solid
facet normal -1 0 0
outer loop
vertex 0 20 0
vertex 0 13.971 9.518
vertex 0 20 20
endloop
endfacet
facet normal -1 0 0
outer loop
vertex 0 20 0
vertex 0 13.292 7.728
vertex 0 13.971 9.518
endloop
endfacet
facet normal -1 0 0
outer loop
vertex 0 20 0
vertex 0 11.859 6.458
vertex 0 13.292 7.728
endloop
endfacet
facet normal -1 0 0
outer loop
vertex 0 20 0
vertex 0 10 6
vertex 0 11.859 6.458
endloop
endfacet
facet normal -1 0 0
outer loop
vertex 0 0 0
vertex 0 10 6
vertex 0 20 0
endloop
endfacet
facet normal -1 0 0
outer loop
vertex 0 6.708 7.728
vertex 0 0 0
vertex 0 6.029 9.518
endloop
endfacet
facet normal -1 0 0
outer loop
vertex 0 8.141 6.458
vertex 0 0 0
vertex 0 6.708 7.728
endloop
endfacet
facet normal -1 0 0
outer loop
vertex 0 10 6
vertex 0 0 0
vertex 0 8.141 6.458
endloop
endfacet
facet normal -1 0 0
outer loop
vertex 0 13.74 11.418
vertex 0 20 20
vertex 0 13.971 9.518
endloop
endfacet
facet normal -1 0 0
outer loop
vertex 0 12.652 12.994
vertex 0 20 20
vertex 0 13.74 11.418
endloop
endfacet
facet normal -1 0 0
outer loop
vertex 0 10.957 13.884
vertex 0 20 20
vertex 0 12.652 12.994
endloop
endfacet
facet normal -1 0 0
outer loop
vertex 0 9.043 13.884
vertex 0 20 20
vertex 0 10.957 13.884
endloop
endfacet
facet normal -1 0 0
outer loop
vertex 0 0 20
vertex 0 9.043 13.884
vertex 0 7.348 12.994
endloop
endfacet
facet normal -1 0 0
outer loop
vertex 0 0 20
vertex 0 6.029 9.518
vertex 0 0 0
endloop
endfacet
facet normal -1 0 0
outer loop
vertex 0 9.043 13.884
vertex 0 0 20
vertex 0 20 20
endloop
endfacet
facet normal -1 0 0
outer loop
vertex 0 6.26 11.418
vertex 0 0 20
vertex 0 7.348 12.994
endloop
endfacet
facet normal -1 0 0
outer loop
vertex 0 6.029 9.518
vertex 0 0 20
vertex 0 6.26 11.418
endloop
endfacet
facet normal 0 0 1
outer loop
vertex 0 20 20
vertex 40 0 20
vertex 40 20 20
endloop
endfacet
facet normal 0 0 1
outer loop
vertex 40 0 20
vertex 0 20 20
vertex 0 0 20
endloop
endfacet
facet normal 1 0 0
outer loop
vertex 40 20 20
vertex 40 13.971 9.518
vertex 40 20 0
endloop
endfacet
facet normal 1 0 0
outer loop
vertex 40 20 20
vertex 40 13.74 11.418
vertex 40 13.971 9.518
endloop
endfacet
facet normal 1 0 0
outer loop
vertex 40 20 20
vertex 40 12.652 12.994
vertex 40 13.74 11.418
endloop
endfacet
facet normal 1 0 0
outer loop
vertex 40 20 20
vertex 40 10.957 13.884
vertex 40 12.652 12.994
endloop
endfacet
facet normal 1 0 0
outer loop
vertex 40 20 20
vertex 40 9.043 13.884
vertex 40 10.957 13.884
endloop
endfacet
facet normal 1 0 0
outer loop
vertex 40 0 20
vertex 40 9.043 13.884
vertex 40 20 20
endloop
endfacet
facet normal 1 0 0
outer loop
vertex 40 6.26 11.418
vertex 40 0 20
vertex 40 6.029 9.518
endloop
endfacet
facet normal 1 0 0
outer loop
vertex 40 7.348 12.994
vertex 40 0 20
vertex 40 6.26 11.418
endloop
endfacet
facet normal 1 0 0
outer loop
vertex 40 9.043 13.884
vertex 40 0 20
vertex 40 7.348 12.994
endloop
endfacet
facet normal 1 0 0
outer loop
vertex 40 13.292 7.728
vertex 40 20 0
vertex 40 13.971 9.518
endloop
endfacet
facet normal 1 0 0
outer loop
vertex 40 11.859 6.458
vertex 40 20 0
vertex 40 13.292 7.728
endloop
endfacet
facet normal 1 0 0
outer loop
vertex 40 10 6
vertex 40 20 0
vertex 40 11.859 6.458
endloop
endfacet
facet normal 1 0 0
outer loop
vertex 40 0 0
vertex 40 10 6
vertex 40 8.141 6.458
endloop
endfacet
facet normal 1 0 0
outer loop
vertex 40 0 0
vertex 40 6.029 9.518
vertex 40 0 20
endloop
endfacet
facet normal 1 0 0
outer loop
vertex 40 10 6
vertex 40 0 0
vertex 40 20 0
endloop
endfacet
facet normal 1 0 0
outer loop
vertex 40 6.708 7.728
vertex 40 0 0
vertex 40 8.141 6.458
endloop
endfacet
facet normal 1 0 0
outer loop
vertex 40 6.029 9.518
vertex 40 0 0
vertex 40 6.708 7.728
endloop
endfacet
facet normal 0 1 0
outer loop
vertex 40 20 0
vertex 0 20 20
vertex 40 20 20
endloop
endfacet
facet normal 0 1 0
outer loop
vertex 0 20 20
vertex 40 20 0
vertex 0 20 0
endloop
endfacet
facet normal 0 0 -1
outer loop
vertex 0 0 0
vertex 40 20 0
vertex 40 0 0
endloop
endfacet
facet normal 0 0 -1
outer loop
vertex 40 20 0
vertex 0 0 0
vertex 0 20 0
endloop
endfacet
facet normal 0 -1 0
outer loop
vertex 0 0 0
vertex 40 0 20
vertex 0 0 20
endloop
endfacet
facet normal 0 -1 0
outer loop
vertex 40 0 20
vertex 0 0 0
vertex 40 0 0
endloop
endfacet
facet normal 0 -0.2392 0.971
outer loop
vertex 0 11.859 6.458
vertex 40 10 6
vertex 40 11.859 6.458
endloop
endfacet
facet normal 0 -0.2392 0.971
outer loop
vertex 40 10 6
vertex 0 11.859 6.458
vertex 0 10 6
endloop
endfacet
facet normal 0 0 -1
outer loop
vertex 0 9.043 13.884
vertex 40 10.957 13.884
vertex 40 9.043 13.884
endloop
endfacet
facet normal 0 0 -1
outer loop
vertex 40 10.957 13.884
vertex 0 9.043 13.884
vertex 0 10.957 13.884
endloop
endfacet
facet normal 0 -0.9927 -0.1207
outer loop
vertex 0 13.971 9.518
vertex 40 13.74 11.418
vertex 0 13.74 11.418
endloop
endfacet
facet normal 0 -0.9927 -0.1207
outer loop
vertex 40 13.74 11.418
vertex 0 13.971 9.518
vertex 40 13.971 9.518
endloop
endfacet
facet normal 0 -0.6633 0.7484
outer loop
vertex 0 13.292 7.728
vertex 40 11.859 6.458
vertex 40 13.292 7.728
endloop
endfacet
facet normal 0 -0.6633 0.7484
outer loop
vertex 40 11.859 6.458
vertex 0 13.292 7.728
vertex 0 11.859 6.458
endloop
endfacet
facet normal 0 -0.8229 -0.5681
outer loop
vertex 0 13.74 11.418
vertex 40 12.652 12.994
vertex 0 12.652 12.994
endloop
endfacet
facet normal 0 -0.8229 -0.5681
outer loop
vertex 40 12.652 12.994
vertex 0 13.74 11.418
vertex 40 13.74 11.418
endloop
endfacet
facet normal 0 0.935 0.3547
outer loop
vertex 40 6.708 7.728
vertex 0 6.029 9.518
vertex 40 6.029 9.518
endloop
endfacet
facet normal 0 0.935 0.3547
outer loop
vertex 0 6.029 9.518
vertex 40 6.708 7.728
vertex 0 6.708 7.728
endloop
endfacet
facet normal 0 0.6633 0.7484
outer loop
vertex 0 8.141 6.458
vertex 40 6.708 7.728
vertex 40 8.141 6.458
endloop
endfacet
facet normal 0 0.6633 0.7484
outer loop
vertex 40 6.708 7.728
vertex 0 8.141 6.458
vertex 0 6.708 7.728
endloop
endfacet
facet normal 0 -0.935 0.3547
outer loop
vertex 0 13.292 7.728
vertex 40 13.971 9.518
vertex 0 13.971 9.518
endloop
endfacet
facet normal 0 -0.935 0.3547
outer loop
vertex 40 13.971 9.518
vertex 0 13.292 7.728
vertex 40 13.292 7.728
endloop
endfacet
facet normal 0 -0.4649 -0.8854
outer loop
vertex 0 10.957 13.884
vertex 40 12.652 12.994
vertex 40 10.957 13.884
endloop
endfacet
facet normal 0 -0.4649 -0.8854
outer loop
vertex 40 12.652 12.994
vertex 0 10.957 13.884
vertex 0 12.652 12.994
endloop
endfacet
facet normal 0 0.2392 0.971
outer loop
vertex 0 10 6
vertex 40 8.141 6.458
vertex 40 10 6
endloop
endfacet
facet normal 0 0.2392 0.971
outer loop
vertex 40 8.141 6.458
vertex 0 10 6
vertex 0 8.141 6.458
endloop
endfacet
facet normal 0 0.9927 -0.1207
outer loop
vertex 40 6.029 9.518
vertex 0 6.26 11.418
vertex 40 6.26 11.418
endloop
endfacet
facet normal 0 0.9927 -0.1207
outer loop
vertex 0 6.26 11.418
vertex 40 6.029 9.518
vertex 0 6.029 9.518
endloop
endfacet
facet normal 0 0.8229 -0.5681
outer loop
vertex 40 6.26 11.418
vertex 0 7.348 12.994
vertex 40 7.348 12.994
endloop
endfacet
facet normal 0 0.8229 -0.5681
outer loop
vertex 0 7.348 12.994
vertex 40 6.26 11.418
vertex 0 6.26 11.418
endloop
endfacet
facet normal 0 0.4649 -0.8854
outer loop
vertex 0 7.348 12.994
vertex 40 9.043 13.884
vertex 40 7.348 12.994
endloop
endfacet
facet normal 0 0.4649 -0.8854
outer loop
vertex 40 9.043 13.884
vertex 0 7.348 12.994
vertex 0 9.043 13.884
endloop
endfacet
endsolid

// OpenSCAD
difference() {
	cube([40, 20, 20]);
	translate([-5, 10, 10])
		rotate([0, 90, 0])
		cylinder(h = 50, r = 4);
}
